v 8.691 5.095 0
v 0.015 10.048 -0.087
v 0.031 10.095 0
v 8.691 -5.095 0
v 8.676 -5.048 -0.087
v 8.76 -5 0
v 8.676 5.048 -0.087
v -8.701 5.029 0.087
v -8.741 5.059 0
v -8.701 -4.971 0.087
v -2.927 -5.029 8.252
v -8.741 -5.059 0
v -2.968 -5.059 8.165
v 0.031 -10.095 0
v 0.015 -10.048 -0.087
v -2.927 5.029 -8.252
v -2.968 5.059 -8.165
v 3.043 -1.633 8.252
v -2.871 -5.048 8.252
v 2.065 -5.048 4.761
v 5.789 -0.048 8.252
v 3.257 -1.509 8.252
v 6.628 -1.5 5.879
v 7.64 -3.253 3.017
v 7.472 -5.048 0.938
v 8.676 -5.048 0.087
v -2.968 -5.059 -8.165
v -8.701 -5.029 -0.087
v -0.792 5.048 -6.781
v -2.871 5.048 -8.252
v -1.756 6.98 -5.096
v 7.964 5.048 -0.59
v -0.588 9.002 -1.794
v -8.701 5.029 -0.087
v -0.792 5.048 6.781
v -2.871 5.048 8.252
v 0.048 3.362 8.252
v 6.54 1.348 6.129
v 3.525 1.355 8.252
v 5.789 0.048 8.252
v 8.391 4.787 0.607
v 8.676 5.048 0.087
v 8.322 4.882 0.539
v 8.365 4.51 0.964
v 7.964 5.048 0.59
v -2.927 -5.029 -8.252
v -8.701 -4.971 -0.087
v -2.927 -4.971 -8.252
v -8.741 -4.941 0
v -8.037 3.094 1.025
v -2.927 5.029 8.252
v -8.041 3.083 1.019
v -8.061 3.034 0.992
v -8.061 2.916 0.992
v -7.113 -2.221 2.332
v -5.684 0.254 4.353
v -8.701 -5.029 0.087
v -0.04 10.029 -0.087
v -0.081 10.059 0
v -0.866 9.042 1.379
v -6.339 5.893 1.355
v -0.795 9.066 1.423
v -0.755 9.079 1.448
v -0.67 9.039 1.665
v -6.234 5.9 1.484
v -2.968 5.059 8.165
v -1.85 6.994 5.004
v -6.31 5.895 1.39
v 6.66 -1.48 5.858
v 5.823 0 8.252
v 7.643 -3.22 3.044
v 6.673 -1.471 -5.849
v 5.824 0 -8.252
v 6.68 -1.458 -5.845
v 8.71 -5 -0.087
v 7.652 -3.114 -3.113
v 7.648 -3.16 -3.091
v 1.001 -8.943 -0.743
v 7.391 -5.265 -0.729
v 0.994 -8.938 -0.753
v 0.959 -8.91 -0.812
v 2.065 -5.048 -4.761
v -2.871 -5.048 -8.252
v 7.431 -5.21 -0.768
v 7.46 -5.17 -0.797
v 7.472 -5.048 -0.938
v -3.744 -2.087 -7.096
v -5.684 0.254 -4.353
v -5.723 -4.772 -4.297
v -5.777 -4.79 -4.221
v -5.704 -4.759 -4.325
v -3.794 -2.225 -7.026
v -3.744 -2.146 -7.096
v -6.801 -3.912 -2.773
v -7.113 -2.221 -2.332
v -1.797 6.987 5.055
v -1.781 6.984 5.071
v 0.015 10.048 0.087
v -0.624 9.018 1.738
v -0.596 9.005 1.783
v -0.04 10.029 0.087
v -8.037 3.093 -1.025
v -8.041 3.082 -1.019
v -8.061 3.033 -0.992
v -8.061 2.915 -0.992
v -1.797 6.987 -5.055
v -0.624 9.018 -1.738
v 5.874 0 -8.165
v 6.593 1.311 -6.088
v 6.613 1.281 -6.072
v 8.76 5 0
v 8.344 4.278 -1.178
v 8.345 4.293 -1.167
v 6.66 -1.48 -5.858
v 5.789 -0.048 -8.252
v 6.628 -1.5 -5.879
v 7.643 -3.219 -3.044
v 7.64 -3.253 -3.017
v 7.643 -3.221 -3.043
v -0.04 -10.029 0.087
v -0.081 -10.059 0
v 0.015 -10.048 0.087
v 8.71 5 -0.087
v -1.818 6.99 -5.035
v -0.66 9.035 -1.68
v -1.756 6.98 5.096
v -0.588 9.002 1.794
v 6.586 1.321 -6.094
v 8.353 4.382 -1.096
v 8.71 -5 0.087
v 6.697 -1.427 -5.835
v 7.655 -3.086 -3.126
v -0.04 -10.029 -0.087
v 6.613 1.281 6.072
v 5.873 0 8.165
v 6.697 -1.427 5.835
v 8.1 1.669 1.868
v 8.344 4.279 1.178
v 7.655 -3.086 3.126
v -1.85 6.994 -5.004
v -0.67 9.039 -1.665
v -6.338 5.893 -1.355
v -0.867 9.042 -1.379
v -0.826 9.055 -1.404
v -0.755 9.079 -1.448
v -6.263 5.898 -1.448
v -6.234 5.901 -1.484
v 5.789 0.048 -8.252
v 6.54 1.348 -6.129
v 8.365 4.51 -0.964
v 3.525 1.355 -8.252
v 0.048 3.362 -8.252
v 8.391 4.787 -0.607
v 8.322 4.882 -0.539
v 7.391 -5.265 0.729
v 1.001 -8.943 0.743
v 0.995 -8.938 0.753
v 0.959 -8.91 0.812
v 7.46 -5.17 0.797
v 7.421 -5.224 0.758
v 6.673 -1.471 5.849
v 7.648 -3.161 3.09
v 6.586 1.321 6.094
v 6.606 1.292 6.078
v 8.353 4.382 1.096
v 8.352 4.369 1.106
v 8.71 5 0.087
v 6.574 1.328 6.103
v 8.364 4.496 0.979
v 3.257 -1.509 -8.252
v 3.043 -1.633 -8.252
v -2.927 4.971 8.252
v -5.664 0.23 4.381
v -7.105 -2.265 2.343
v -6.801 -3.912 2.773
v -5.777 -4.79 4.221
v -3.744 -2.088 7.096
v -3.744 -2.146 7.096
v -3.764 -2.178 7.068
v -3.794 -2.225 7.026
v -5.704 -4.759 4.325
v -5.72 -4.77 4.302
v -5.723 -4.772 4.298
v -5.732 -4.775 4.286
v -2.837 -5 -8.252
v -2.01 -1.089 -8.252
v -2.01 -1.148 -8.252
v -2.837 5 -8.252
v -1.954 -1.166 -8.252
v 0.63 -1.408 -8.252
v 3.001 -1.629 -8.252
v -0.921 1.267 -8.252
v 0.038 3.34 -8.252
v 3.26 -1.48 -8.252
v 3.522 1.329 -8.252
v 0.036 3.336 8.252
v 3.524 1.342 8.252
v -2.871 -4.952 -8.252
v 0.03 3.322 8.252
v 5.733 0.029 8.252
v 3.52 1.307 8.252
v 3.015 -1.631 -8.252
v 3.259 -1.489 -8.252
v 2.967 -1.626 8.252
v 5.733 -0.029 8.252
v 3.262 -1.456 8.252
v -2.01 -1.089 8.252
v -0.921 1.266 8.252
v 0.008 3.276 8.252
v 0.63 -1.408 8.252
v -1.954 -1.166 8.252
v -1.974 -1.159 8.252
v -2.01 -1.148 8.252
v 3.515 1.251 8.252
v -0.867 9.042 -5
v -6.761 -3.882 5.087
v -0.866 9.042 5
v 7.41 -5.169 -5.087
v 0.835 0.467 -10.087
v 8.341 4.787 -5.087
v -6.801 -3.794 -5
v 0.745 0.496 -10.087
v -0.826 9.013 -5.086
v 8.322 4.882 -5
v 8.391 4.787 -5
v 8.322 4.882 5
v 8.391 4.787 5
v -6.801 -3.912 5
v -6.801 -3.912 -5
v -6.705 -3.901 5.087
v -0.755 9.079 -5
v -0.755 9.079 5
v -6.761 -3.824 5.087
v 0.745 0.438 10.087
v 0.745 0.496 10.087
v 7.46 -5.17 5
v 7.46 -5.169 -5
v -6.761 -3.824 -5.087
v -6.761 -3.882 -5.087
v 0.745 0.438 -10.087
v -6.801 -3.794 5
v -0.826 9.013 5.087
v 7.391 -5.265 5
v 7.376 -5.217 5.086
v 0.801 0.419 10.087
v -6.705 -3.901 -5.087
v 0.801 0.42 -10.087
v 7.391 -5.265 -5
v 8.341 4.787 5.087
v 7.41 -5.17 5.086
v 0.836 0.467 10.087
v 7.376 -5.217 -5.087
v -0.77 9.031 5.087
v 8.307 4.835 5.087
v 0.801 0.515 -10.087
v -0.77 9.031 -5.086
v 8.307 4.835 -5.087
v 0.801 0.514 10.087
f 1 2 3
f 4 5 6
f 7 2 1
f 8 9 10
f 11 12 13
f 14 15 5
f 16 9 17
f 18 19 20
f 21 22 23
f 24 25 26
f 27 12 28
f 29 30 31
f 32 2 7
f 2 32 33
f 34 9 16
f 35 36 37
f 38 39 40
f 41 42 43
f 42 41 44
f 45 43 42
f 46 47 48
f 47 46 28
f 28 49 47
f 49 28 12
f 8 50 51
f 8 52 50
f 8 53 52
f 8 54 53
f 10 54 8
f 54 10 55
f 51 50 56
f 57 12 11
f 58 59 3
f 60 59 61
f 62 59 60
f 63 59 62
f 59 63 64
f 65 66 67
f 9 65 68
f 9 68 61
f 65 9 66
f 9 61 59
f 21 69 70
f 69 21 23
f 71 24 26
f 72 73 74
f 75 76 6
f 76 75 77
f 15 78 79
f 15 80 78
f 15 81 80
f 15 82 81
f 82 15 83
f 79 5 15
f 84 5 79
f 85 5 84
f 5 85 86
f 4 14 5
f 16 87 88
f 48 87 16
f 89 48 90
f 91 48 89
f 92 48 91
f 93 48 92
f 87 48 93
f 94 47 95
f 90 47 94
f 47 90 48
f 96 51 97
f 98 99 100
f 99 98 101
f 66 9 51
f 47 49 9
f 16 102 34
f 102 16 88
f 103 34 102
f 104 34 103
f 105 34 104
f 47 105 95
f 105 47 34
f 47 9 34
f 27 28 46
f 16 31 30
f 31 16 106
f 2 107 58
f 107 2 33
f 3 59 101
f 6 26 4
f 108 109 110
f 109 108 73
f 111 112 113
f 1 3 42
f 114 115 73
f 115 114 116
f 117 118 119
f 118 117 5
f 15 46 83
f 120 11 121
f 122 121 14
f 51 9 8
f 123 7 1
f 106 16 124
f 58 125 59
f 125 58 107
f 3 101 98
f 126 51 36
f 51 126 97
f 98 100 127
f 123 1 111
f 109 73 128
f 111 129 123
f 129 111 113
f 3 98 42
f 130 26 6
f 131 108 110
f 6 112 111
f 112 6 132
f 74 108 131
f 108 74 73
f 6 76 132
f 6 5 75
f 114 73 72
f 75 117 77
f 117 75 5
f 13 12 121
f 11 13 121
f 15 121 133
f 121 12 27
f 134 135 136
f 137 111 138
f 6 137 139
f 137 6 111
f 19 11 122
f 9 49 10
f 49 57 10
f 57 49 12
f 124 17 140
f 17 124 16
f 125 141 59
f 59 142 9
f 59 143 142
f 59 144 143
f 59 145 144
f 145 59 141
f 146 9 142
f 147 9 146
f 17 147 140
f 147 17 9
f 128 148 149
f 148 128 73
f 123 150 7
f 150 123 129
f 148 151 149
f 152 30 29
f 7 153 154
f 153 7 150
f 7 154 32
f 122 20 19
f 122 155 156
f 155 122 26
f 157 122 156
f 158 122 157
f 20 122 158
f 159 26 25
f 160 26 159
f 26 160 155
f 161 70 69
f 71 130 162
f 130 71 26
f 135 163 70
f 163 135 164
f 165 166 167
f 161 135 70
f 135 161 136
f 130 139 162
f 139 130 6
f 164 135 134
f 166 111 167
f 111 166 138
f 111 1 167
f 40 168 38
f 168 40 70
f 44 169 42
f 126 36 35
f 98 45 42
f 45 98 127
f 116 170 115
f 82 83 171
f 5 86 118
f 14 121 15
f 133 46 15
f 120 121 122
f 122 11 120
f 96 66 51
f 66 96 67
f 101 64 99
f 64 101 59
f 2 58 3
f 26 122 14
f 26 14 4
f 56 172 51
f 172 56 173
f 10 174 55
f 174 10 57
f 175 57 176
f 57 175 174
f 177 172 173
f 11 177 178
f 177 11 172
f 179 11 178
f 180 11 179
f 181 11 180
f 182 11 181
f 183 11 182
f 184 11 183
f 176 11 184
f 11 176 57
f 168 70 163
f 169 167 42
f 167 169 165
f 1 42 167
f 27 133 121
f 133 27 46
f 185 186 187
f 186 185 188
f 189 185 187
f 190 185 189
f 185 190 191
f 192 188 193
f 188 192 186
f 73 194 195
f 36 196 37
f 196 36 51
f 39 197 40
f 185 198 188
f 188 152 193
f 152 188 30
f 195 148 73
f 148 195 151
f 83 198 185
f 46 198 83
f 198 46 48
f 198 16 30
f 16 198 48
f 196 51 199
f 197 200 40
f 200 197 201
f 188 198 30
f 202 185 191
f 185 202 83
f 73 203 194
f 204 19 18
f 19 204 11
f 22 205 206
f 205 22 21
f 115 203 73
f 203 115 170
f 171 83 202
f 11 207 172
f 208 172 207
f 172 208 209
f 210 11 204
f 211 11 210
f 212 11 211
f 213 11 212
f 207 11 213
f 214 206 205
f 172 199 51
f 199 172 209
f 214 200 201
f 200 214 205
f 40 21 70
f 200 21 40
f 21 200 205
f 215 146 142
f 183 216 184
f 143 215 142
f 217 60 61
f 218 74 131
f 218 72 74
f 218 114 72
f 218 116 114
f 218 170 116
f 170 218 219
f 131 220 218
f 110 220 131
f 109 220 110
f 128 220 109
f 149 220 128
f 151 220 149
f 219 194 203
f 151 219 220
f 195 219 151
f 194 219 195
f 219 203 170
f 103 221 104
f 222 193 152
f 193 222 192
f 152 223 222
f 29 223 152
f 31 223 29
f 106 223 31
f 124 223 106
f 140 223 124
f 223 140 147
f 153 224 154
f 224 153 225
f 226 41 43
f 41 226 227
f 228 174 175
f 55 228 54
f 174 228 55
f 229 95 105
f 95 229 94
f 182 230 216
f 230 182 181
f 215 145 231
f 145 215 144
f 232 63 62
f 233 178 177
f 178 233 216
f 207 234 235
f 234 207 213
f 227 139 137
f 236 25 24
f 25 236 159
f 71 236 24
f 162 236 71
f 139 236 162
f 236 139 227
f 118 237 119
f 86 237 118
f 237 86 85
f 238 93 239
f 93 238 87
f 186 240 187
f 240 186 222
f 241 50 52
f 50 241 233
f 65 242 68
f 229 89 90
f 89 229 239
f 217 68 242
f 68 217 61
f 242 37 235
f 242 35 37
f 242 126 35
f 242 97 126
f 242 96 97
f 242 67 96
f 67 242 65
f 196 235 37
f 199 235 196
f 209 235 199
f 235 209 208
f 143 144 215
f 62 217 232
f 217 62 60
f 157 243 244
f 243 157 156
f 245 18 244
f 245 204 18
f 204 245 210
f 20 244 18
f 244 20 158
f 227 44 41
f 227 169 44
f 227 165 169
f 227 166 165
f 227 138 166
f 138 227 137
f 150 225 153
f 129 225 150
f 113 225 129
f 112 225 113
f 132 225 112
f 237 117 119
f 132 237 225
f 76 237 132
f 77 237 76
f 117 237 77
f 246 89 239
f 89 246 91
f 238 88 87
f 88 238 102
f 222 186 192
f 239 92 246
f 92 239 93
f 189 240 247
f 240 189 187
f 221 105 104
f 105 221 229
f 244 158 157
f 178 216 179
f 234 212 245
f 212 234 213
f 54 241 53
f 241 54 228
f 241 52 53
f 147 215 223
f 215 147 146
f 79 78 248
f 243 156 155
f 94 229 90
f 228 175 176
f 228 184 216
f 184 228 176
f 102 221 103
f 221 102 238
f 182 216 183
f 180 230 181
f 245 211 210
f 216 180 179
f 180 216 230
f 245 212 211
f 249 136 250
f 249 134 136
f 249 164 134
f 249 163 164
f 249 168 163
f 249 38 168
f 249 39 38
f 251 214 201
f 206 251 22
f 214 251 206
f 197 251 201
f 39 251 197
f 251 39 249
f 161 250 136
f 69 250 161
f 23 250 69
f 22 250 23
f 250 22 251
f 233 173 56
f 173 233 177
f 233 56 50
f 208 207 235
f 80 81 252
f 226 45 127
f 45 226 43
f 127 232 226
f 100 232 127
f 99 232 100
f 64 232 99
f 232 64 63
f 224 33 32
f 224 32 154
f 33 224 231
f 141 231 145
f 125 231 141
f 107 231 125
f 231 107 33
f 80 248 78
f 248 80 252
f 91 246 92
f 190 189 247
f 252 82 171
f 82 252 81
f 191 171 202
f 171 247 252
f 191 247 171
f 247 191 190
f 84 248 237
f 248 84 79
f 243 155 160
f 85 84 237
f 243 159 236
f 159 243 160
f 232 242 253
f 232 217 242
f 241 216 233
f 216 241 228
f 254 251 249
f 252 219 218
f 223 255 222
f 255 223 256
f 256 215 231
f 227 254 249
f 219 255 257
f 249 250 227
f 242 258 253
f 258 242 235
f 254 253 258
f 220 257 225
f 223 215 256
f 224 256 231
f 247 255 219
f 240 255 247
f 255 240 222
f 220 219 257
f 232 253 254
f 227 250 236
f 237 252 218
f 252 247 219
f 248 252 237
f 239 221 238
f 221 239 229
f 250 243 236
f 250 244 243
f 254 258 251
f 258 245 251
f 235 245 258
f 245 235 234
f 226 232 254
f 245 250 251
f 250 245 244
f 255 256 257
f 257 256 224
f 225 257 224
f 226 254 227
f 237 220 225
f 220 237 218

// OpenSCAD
// Auto-generated OpenSCAD file

    inner_points = 10*[[-0.8291415458319079, 0.4663499702585989, 2.058495952064754e-05], [-0.07855180895714171, 0.8983503547280824, 0.5000112995897901], [-0.078569895871595, 0.898360286145608, -0.4999887001973251], [0.7360452910153114, -0.5169581736692761, 0.4999825100217997], [-0.6720275168609681, -0.3853110430415919, 0.5000092851568458], [0.8291157830596579, 0.4787095887324264, -0.5000092851568458], [-0.014544445859454913, -0.9489585581387598, -8.204608469786212e-06], [0.07856222001379826, 0.04668934142789162, 0.9999999997871154], [0.07852604618489165, 0.046709204262942824, -0.9999999997871154], [0.7360272041008581, -0.5169482422517505, -0.5000174897653156], [-0.6720456037754214, -0.38530111162406633, -0.4999907146302695], [0.8291338699741113, 0.47869965731490083, 0.4999907146302695]];

    outer_points = 10*[[-0.2886740751691849, -0.49999976883649444, -0.8164970970485246], [-0.2886739150147398, 0.500000231163467, -0.8164968705552657], [0.5773514086916217, 9.246539450780134e-08, -0.8164957751769395], [-0.2886761940198712, 0.49999986130188906, 0.8164962912985543], [-0.8660254838608068, -0.49999986130188906, -1.3218715850804585e-06], [0.8660254838608068, 0.49999986130188906, 1.3218715850804585e-06], [-0.2886763541743163, -0.5000001386980726, 0.8164960648052954], [-0.8660253237063618, 0.5000001386980726, -1.0953783261546945e-06], [0.8660253237063618, -0.5000001386980726, 1.0953783261546945e-06], [0.5773491296864904, -2.77396183523404e-07, 0.8164973866768803], [-1.6015444513559745e-07, -0.9999999999999616, -2.2649325892100838e-07], [1.6015444513559745e-07, 0.9999999999999616, 2.2649325892100838e-07]];

    // Convex hull for inner set (I)
    module inner_hull() {
        hull() {
            for (p = inner_points) {
                translate(p) sphere(r=0.1);
            }
        }
    }

    // Convex hull for outer set (O) minus inner hull (O \ I)
    module outer_minus_inner() {
        difference() {
            hull() {
                for (p = outer_points) {
                    translate(p) sphere(r=0.1);
                }
            }
            inner_hull(); // Subtract inner hull
        }
    }

    // Convex hull for outer set (O) minus all translated inner hulls
    module outer_minus_AllTranslationInner() {
        difference() {
            hull() {
                for (p = outer_points) {
                    translate(p) sphere(r=0.1);
                }
            }
            hull() {
                translate([0,0,50]) inner_hull();
                translate([0,0,-50]) inner_hull();
            }; // Subtract translated inner hulls
        }
    }

    // Difference between outer_minus_inner and outer_minus_AllTranslationInner
    module outer_minus_inner_diff() {
        difference() {
            // Outer minus inner
            difference() {
                hull() {
                    for (p = outer_points) {
                        translate(p) sphere(r=0.1);
                    }
                }
                inner_hull();
            }

            // Subtract Outer minus AllTranslationInner
            difference() {
                hull() {
                    for (p = outer_points) {
                        translate(p) sphere(r=0.1);
                    }
                }
                hull() {
                    translate([0,0,50]) inner_hull();
                    translate([0,0,-50]) inner_hull();
                };
            }
        }
    }

    // Rendering all with colors applied
    color([1, 0, 0, 0.5]) inner_hull(); // Transparent red
    color([0, 1, 0, 1]) outer_minus_AllTranslationInner(); // Opaque green
    color([1, 1, 0, 1]) outer_minus_inner_diff(); // Opaque yellow
    
